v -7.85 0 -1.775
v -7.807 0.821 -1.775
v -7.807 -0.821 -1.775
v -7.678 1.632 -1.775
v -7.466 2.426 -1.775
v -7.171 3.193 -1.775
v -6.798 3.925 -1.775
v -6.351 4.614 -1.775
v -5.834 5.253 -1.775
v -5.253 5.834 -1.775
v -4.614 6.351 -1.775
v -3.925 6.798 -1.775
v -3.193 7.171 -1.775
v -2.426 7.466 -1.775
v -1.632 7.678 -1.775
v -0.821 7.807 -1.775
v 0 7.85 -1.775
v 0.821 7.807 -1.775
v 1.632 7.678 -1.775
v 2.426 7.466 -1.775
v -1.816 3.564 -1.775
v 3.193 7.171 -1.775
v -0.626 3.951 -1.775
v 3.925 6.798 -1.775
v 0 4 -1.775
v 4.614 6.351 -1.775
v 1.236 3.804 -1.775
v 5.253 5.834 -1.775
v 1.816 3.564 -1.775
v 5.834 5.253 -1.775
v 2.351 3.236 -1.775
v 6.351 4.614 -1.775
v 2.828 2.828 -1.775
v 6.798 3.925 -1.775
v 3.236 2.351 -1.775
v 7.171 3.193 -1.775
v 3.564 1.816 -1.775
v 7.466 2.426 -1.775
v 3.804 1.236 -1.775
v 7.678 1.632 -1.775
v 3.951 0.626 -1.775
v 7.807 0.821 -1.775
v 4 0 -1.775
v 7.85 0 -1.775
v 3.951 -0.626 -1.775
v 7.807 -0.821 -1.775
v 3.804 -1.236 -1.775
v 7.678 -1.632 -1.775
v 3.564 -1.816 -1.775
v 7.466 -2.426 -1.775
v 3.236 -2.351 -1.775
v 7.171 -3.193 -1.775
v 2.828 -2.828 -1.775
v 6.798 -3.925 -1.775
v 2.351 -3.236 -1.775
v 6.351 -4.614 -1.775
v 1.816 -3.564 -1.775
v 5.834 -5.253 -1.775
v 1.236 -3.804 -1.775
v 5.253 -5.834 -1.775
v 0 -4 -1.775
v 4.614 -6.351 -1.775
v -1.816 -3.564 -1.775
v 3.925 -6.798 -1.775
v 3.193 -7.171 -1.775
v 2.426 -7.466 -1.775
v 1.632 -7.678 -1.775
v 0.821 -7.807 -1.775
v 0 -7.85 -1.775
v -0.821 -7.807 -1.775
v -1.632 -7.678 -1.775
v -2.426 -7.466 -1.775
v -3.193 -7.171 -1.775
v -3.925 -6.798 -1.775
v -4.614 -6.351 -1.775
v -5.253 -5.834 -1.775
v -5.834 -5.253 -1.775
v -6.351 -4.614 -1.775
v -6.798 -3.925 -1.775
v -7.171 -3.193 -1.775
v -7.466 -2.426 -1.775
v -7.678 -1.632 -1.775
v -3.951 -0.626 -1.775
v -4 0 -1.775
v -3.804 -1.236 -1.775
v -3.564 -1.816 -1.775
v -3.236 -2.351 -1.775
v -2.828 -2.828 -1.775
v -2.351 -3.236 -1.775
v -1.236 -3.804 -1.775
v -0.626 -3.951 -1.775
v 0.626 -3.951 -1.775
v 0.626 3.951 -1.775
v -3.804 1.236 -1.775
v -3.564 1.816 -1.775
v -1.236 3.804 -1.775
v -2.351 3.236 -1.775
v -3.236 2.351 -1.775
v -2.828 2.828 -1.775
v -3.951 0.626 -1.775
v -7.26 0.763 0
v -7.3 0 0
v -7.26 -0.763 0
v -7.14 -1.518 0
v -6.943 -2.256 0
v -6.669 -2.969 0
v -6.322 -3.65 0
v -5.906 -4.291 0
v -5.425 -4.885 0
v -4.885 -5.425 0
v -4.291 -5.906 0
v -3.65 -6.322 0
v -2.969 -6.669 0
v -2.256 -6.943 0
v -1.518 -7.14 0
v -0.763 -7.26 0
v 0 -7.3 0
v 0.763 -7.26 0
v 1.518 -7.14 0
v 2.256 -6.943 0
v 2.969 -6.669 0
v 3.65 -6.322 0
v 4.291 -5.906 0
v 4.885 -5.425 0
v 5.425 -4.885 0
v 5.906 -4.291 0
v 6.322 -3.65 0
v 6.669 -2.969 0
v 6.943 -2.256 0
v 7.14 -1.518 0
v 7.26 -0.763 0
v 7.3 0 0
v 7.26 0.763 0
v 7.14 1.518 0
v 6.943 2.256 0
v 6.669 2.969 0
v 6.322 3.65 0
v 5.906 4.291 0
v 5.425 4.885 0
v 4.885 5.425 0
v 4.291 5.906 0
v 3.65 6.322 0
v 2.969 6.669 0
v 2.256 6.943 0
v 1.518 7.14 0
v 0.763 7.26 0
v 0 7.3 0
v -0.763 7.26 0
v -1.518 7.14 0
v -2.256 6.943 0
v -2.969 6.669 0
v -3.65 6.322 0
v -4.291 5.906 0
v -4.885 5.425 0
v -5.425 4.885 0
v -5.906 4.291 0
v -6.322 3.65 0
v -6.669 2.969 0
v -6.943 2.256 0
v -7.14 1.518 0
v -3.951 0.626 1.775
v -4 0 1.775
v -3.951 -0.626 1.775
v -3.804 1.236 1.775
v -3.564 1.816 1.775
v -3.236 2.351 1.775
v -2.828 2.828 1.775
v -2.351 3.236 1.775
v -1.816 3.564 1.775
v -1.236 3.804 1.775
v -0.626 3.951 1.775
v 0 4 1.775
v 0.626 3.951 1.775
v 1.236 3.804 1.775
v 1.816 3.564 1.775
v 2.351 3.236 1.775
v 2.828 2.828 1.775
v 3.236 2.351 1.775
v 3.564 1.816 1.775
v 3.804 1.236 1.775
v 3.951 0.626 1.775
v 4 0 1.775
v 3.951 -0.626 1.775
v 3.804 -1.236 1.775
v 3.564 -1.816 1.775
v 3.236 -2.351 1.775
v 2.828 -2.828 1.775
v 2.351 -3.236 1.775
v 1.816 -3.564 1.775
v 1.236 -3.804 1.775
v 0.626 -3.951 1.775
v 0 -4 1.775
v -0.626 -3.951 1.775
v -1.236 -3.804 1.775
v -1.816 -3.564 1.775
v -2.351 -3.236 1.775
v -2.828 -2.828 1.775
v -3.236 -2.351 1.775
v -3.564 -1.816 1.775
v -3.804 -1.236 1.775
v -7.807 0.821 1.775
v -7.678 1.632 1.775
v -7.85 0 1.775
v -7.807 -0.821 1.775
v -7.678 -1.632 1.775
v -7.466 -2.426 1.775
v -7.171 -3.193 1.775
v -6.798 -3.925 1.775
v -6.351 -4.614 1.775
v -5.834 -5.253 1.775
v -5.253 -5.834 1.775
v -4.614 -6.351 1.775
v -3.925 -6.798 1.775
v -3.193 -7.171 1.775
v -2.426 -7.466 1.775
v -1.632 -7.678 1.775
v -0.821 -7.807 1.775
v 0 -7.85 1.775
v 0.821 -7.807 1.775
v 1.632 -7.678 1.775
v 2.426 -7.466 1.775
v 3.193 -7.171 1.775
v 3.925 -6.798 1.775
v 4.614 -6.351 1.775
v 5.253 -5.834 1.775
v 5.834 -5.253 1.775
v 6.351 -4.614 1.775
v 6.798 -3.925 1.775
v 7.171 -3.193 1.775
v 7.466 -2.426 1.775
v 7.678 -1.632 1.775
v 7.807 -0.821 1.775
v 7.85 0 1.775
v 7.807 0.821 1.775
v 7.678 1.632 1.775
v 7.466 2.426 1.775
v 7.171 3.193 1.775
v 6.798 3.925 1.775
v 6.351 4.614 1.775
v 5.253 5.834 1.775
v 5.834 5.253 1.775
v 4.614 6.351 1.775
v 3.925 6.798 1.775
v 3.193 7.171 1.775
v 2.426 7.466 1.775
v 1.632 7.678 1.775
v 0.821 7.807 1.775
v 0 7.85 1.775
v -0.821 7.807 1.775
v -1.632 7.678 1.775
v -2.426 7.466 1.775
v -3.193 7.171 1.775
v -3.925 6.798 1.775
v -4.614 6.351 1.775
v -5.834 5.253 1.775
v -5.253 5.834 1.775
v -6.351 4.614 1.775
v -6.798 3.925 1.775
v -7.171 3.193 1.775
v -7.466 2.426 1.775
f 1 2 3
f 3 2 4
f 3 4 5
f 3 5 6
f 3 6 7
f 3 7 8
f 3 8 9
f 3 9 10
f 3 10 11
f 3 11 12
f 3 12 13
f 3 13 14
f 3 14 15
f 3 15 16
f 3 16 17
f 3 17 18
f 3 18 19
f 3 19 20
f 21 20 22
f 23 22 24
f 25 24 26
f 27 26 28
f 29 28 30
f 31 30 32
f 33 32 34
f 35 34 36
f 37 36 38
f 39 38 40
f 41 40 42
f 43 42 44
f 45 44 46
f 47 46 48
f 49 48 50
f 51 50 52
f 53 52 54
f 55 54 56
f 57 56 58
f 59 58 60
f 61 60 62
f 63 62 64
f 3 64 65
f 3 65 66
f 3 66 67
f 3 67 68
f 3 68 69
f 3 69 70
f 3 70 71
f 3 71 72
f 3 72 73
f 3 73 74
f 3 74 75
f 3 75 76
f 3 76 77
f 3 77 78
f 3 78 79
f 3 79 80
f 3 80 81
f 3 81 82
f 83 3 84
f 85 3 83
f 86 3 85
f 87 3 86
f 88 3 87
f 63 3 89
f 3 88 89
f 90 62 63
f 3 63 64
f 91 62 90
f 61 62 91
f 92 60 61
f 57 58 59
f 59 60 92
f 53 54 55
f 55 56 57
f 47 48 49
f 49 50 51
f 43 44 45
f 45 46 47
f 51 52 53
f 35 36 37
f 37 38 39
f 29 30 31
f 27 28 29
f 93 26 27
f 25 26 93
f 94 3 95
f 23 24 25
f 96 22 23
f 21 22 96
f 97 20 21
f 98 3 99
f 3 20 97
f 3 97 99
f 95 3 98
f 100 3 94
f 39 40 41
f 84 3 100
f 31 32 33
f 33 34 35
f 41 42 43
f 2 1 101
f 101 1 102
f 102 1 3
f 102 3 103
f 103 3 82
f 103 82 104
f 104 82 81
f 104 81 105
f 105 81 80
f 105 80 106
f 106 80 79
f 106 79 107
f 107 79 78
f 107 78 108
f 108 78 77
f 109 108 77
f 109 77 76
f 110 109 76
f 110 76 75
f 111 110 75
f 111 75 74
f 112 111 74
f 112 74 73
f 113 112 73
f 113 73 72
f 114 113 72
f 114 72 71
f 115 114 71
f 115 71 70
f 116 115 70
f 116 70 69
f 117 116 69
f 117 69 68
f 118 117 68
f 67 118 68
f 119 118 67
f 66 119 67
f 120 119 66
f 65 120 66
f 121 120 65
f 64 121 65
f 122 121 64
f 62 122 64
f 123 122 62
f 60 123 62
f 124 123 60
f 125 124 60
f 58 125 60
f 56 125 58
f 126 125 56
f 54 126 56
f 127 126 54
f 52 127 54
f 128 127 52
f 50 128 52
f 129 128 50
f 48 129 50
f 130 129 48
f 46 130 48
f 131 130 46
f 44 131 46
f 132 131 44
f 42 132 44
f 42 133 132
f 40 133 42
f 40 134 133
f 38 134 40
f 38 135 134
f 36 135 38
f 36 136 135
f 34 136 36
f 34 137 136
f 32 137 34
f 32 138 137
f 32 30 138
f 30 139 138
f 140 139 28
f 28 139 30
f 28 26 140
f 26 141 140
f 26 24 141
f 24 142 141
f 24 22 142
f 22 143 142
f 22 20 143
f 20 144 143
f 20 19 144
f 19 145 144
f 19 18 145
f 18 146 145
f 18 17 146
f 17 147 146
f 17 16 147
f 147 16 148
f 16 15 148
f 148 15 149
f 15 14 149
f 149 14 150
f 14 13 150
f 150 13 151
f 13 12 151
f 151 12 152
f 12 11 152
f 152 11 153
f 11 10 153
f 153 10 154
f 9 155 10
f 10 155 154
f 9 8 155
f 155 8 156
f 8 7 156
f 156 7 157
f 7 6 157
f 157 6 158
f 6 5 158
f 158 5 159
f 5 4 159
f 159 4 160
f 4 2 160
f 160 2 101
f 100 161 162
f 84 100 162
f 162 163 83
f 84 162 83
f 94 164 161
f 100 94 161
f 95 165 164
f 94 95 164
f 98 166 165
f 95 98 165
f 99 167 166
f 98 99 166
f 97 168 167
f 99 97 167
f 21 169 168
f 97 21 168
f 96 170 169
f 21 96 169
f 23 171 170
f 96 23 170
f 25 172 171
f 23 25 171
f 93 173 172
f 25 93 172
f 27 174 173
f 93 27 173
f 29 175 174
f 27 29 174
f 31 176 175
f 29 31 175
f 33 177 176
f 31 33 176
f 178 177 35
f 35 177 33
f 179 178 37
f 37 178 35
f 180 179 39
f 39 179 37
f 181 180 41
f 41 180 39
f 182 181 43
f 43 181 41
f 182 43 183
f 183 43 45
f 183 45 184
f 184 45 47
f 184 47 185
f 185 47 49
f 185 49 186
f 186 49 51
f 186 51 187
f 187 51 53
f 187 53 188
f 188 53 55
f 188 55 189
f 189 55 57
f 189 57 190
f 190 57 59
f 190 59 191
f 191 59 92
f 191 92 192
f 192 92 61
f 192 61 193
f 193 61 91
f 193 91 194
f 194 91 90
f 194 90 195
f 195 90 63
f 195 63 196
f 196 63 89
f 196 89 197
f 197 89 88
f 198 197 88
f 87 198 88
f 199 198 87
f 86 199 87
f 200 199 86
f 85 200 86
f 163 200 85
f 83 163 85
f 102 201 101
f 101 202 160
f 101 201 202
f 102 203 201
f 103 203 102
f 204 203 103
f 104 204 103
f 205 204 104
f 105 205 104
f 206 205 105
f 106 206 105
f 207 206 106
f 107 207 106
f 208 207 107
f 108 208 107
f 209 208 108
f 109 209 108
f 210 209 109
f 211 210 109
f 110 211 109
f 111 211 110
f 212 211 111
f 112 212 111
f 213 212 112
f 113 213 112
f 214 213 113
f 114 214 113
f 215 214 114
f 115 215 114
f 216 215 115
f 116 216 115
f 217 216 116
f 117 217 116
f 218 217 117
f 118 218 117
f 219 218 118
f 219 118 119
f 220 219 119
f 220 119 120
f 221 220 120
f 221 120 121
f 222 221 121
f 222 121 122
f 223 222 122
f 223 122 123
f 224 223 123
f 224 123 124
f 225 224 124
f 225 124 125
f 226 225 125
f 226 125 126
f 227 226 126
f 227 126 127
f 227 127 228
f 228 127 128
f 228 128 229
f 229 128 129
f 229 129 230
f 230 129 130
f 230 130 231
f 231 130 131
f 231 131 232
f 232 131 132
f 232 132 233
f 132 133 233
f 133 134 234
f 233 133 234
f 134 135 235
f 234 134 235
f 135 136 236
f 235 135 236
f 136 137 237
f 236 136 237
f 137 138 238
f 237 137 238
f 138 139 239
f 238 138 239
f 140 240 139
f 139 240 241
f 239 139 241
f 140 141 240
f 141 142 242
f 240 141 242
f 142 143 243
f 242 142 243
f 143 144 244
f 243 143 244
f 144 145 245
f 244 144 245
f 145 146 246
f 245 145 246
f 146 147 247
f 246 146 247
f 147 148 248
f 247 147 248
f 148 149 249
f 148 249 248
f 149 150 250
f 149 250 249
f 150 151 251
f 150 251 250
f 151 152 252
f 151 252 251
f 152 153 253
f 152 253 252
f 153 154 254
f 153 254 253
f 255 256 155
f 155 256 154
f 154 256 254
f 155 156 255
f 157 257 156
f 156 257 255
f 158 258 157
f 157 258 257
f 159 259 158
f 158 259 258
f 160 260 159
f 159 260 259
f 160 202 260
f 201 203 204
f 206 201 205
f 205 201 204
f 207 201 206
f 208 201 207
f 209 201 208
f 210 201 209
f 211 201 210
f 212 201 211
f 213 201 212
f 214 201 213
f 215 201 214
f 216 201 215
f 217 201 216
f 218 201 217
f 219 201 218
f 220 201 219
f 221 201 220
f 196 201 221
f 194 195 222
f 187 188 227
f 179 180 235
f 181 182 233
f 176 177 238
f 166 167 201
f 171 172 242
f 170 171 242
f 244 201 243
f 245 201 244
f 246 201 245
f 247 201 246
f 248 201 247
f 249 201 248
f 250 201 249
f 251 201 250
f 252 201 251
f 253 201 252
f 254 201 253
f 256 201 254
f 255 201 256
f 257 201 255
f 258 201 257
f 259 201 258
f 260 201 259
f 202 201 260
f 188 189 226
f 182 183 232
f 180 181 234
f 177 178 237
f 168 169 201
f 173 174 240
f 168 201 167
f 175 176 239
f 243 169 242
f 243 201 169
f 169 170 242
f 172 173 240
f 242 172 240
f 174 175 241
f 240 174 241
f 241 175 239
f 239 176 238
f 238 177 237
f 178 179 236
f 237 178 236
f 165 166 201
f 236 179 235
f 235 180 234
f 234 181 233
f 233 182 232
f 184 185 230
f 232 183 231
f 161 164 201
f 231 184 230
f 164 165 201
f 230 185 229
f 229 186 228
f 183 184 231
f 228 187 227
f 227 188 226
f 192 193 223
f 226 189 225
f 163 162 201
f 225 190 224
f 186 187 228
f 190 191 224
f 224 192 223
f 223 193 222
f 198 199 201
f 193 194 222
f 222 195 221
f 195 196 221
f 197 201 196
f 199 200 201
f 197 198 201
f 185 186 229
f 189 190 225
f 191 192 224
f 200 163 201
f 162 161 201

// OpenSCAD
// steve grabbers v idler wheel

module VW_wheel() {
	cylinder(r1=15.7/2,r2=14.6/2, h=3.55/2, $fn=60);
	translate([0,0,3.55/2]) cylinder(r2=15.7/2,r1=14.6/2, h=3.55/2, $fn=60);
}

module idler_vwheel() {
	difference() {
		translate([0,0,-3.55/2]) VW_wheel();
		#translate([0,0,-6/2]) cylinder(r=8/2, h=6, $fn=40);
	}
}

idler_vwheel();
